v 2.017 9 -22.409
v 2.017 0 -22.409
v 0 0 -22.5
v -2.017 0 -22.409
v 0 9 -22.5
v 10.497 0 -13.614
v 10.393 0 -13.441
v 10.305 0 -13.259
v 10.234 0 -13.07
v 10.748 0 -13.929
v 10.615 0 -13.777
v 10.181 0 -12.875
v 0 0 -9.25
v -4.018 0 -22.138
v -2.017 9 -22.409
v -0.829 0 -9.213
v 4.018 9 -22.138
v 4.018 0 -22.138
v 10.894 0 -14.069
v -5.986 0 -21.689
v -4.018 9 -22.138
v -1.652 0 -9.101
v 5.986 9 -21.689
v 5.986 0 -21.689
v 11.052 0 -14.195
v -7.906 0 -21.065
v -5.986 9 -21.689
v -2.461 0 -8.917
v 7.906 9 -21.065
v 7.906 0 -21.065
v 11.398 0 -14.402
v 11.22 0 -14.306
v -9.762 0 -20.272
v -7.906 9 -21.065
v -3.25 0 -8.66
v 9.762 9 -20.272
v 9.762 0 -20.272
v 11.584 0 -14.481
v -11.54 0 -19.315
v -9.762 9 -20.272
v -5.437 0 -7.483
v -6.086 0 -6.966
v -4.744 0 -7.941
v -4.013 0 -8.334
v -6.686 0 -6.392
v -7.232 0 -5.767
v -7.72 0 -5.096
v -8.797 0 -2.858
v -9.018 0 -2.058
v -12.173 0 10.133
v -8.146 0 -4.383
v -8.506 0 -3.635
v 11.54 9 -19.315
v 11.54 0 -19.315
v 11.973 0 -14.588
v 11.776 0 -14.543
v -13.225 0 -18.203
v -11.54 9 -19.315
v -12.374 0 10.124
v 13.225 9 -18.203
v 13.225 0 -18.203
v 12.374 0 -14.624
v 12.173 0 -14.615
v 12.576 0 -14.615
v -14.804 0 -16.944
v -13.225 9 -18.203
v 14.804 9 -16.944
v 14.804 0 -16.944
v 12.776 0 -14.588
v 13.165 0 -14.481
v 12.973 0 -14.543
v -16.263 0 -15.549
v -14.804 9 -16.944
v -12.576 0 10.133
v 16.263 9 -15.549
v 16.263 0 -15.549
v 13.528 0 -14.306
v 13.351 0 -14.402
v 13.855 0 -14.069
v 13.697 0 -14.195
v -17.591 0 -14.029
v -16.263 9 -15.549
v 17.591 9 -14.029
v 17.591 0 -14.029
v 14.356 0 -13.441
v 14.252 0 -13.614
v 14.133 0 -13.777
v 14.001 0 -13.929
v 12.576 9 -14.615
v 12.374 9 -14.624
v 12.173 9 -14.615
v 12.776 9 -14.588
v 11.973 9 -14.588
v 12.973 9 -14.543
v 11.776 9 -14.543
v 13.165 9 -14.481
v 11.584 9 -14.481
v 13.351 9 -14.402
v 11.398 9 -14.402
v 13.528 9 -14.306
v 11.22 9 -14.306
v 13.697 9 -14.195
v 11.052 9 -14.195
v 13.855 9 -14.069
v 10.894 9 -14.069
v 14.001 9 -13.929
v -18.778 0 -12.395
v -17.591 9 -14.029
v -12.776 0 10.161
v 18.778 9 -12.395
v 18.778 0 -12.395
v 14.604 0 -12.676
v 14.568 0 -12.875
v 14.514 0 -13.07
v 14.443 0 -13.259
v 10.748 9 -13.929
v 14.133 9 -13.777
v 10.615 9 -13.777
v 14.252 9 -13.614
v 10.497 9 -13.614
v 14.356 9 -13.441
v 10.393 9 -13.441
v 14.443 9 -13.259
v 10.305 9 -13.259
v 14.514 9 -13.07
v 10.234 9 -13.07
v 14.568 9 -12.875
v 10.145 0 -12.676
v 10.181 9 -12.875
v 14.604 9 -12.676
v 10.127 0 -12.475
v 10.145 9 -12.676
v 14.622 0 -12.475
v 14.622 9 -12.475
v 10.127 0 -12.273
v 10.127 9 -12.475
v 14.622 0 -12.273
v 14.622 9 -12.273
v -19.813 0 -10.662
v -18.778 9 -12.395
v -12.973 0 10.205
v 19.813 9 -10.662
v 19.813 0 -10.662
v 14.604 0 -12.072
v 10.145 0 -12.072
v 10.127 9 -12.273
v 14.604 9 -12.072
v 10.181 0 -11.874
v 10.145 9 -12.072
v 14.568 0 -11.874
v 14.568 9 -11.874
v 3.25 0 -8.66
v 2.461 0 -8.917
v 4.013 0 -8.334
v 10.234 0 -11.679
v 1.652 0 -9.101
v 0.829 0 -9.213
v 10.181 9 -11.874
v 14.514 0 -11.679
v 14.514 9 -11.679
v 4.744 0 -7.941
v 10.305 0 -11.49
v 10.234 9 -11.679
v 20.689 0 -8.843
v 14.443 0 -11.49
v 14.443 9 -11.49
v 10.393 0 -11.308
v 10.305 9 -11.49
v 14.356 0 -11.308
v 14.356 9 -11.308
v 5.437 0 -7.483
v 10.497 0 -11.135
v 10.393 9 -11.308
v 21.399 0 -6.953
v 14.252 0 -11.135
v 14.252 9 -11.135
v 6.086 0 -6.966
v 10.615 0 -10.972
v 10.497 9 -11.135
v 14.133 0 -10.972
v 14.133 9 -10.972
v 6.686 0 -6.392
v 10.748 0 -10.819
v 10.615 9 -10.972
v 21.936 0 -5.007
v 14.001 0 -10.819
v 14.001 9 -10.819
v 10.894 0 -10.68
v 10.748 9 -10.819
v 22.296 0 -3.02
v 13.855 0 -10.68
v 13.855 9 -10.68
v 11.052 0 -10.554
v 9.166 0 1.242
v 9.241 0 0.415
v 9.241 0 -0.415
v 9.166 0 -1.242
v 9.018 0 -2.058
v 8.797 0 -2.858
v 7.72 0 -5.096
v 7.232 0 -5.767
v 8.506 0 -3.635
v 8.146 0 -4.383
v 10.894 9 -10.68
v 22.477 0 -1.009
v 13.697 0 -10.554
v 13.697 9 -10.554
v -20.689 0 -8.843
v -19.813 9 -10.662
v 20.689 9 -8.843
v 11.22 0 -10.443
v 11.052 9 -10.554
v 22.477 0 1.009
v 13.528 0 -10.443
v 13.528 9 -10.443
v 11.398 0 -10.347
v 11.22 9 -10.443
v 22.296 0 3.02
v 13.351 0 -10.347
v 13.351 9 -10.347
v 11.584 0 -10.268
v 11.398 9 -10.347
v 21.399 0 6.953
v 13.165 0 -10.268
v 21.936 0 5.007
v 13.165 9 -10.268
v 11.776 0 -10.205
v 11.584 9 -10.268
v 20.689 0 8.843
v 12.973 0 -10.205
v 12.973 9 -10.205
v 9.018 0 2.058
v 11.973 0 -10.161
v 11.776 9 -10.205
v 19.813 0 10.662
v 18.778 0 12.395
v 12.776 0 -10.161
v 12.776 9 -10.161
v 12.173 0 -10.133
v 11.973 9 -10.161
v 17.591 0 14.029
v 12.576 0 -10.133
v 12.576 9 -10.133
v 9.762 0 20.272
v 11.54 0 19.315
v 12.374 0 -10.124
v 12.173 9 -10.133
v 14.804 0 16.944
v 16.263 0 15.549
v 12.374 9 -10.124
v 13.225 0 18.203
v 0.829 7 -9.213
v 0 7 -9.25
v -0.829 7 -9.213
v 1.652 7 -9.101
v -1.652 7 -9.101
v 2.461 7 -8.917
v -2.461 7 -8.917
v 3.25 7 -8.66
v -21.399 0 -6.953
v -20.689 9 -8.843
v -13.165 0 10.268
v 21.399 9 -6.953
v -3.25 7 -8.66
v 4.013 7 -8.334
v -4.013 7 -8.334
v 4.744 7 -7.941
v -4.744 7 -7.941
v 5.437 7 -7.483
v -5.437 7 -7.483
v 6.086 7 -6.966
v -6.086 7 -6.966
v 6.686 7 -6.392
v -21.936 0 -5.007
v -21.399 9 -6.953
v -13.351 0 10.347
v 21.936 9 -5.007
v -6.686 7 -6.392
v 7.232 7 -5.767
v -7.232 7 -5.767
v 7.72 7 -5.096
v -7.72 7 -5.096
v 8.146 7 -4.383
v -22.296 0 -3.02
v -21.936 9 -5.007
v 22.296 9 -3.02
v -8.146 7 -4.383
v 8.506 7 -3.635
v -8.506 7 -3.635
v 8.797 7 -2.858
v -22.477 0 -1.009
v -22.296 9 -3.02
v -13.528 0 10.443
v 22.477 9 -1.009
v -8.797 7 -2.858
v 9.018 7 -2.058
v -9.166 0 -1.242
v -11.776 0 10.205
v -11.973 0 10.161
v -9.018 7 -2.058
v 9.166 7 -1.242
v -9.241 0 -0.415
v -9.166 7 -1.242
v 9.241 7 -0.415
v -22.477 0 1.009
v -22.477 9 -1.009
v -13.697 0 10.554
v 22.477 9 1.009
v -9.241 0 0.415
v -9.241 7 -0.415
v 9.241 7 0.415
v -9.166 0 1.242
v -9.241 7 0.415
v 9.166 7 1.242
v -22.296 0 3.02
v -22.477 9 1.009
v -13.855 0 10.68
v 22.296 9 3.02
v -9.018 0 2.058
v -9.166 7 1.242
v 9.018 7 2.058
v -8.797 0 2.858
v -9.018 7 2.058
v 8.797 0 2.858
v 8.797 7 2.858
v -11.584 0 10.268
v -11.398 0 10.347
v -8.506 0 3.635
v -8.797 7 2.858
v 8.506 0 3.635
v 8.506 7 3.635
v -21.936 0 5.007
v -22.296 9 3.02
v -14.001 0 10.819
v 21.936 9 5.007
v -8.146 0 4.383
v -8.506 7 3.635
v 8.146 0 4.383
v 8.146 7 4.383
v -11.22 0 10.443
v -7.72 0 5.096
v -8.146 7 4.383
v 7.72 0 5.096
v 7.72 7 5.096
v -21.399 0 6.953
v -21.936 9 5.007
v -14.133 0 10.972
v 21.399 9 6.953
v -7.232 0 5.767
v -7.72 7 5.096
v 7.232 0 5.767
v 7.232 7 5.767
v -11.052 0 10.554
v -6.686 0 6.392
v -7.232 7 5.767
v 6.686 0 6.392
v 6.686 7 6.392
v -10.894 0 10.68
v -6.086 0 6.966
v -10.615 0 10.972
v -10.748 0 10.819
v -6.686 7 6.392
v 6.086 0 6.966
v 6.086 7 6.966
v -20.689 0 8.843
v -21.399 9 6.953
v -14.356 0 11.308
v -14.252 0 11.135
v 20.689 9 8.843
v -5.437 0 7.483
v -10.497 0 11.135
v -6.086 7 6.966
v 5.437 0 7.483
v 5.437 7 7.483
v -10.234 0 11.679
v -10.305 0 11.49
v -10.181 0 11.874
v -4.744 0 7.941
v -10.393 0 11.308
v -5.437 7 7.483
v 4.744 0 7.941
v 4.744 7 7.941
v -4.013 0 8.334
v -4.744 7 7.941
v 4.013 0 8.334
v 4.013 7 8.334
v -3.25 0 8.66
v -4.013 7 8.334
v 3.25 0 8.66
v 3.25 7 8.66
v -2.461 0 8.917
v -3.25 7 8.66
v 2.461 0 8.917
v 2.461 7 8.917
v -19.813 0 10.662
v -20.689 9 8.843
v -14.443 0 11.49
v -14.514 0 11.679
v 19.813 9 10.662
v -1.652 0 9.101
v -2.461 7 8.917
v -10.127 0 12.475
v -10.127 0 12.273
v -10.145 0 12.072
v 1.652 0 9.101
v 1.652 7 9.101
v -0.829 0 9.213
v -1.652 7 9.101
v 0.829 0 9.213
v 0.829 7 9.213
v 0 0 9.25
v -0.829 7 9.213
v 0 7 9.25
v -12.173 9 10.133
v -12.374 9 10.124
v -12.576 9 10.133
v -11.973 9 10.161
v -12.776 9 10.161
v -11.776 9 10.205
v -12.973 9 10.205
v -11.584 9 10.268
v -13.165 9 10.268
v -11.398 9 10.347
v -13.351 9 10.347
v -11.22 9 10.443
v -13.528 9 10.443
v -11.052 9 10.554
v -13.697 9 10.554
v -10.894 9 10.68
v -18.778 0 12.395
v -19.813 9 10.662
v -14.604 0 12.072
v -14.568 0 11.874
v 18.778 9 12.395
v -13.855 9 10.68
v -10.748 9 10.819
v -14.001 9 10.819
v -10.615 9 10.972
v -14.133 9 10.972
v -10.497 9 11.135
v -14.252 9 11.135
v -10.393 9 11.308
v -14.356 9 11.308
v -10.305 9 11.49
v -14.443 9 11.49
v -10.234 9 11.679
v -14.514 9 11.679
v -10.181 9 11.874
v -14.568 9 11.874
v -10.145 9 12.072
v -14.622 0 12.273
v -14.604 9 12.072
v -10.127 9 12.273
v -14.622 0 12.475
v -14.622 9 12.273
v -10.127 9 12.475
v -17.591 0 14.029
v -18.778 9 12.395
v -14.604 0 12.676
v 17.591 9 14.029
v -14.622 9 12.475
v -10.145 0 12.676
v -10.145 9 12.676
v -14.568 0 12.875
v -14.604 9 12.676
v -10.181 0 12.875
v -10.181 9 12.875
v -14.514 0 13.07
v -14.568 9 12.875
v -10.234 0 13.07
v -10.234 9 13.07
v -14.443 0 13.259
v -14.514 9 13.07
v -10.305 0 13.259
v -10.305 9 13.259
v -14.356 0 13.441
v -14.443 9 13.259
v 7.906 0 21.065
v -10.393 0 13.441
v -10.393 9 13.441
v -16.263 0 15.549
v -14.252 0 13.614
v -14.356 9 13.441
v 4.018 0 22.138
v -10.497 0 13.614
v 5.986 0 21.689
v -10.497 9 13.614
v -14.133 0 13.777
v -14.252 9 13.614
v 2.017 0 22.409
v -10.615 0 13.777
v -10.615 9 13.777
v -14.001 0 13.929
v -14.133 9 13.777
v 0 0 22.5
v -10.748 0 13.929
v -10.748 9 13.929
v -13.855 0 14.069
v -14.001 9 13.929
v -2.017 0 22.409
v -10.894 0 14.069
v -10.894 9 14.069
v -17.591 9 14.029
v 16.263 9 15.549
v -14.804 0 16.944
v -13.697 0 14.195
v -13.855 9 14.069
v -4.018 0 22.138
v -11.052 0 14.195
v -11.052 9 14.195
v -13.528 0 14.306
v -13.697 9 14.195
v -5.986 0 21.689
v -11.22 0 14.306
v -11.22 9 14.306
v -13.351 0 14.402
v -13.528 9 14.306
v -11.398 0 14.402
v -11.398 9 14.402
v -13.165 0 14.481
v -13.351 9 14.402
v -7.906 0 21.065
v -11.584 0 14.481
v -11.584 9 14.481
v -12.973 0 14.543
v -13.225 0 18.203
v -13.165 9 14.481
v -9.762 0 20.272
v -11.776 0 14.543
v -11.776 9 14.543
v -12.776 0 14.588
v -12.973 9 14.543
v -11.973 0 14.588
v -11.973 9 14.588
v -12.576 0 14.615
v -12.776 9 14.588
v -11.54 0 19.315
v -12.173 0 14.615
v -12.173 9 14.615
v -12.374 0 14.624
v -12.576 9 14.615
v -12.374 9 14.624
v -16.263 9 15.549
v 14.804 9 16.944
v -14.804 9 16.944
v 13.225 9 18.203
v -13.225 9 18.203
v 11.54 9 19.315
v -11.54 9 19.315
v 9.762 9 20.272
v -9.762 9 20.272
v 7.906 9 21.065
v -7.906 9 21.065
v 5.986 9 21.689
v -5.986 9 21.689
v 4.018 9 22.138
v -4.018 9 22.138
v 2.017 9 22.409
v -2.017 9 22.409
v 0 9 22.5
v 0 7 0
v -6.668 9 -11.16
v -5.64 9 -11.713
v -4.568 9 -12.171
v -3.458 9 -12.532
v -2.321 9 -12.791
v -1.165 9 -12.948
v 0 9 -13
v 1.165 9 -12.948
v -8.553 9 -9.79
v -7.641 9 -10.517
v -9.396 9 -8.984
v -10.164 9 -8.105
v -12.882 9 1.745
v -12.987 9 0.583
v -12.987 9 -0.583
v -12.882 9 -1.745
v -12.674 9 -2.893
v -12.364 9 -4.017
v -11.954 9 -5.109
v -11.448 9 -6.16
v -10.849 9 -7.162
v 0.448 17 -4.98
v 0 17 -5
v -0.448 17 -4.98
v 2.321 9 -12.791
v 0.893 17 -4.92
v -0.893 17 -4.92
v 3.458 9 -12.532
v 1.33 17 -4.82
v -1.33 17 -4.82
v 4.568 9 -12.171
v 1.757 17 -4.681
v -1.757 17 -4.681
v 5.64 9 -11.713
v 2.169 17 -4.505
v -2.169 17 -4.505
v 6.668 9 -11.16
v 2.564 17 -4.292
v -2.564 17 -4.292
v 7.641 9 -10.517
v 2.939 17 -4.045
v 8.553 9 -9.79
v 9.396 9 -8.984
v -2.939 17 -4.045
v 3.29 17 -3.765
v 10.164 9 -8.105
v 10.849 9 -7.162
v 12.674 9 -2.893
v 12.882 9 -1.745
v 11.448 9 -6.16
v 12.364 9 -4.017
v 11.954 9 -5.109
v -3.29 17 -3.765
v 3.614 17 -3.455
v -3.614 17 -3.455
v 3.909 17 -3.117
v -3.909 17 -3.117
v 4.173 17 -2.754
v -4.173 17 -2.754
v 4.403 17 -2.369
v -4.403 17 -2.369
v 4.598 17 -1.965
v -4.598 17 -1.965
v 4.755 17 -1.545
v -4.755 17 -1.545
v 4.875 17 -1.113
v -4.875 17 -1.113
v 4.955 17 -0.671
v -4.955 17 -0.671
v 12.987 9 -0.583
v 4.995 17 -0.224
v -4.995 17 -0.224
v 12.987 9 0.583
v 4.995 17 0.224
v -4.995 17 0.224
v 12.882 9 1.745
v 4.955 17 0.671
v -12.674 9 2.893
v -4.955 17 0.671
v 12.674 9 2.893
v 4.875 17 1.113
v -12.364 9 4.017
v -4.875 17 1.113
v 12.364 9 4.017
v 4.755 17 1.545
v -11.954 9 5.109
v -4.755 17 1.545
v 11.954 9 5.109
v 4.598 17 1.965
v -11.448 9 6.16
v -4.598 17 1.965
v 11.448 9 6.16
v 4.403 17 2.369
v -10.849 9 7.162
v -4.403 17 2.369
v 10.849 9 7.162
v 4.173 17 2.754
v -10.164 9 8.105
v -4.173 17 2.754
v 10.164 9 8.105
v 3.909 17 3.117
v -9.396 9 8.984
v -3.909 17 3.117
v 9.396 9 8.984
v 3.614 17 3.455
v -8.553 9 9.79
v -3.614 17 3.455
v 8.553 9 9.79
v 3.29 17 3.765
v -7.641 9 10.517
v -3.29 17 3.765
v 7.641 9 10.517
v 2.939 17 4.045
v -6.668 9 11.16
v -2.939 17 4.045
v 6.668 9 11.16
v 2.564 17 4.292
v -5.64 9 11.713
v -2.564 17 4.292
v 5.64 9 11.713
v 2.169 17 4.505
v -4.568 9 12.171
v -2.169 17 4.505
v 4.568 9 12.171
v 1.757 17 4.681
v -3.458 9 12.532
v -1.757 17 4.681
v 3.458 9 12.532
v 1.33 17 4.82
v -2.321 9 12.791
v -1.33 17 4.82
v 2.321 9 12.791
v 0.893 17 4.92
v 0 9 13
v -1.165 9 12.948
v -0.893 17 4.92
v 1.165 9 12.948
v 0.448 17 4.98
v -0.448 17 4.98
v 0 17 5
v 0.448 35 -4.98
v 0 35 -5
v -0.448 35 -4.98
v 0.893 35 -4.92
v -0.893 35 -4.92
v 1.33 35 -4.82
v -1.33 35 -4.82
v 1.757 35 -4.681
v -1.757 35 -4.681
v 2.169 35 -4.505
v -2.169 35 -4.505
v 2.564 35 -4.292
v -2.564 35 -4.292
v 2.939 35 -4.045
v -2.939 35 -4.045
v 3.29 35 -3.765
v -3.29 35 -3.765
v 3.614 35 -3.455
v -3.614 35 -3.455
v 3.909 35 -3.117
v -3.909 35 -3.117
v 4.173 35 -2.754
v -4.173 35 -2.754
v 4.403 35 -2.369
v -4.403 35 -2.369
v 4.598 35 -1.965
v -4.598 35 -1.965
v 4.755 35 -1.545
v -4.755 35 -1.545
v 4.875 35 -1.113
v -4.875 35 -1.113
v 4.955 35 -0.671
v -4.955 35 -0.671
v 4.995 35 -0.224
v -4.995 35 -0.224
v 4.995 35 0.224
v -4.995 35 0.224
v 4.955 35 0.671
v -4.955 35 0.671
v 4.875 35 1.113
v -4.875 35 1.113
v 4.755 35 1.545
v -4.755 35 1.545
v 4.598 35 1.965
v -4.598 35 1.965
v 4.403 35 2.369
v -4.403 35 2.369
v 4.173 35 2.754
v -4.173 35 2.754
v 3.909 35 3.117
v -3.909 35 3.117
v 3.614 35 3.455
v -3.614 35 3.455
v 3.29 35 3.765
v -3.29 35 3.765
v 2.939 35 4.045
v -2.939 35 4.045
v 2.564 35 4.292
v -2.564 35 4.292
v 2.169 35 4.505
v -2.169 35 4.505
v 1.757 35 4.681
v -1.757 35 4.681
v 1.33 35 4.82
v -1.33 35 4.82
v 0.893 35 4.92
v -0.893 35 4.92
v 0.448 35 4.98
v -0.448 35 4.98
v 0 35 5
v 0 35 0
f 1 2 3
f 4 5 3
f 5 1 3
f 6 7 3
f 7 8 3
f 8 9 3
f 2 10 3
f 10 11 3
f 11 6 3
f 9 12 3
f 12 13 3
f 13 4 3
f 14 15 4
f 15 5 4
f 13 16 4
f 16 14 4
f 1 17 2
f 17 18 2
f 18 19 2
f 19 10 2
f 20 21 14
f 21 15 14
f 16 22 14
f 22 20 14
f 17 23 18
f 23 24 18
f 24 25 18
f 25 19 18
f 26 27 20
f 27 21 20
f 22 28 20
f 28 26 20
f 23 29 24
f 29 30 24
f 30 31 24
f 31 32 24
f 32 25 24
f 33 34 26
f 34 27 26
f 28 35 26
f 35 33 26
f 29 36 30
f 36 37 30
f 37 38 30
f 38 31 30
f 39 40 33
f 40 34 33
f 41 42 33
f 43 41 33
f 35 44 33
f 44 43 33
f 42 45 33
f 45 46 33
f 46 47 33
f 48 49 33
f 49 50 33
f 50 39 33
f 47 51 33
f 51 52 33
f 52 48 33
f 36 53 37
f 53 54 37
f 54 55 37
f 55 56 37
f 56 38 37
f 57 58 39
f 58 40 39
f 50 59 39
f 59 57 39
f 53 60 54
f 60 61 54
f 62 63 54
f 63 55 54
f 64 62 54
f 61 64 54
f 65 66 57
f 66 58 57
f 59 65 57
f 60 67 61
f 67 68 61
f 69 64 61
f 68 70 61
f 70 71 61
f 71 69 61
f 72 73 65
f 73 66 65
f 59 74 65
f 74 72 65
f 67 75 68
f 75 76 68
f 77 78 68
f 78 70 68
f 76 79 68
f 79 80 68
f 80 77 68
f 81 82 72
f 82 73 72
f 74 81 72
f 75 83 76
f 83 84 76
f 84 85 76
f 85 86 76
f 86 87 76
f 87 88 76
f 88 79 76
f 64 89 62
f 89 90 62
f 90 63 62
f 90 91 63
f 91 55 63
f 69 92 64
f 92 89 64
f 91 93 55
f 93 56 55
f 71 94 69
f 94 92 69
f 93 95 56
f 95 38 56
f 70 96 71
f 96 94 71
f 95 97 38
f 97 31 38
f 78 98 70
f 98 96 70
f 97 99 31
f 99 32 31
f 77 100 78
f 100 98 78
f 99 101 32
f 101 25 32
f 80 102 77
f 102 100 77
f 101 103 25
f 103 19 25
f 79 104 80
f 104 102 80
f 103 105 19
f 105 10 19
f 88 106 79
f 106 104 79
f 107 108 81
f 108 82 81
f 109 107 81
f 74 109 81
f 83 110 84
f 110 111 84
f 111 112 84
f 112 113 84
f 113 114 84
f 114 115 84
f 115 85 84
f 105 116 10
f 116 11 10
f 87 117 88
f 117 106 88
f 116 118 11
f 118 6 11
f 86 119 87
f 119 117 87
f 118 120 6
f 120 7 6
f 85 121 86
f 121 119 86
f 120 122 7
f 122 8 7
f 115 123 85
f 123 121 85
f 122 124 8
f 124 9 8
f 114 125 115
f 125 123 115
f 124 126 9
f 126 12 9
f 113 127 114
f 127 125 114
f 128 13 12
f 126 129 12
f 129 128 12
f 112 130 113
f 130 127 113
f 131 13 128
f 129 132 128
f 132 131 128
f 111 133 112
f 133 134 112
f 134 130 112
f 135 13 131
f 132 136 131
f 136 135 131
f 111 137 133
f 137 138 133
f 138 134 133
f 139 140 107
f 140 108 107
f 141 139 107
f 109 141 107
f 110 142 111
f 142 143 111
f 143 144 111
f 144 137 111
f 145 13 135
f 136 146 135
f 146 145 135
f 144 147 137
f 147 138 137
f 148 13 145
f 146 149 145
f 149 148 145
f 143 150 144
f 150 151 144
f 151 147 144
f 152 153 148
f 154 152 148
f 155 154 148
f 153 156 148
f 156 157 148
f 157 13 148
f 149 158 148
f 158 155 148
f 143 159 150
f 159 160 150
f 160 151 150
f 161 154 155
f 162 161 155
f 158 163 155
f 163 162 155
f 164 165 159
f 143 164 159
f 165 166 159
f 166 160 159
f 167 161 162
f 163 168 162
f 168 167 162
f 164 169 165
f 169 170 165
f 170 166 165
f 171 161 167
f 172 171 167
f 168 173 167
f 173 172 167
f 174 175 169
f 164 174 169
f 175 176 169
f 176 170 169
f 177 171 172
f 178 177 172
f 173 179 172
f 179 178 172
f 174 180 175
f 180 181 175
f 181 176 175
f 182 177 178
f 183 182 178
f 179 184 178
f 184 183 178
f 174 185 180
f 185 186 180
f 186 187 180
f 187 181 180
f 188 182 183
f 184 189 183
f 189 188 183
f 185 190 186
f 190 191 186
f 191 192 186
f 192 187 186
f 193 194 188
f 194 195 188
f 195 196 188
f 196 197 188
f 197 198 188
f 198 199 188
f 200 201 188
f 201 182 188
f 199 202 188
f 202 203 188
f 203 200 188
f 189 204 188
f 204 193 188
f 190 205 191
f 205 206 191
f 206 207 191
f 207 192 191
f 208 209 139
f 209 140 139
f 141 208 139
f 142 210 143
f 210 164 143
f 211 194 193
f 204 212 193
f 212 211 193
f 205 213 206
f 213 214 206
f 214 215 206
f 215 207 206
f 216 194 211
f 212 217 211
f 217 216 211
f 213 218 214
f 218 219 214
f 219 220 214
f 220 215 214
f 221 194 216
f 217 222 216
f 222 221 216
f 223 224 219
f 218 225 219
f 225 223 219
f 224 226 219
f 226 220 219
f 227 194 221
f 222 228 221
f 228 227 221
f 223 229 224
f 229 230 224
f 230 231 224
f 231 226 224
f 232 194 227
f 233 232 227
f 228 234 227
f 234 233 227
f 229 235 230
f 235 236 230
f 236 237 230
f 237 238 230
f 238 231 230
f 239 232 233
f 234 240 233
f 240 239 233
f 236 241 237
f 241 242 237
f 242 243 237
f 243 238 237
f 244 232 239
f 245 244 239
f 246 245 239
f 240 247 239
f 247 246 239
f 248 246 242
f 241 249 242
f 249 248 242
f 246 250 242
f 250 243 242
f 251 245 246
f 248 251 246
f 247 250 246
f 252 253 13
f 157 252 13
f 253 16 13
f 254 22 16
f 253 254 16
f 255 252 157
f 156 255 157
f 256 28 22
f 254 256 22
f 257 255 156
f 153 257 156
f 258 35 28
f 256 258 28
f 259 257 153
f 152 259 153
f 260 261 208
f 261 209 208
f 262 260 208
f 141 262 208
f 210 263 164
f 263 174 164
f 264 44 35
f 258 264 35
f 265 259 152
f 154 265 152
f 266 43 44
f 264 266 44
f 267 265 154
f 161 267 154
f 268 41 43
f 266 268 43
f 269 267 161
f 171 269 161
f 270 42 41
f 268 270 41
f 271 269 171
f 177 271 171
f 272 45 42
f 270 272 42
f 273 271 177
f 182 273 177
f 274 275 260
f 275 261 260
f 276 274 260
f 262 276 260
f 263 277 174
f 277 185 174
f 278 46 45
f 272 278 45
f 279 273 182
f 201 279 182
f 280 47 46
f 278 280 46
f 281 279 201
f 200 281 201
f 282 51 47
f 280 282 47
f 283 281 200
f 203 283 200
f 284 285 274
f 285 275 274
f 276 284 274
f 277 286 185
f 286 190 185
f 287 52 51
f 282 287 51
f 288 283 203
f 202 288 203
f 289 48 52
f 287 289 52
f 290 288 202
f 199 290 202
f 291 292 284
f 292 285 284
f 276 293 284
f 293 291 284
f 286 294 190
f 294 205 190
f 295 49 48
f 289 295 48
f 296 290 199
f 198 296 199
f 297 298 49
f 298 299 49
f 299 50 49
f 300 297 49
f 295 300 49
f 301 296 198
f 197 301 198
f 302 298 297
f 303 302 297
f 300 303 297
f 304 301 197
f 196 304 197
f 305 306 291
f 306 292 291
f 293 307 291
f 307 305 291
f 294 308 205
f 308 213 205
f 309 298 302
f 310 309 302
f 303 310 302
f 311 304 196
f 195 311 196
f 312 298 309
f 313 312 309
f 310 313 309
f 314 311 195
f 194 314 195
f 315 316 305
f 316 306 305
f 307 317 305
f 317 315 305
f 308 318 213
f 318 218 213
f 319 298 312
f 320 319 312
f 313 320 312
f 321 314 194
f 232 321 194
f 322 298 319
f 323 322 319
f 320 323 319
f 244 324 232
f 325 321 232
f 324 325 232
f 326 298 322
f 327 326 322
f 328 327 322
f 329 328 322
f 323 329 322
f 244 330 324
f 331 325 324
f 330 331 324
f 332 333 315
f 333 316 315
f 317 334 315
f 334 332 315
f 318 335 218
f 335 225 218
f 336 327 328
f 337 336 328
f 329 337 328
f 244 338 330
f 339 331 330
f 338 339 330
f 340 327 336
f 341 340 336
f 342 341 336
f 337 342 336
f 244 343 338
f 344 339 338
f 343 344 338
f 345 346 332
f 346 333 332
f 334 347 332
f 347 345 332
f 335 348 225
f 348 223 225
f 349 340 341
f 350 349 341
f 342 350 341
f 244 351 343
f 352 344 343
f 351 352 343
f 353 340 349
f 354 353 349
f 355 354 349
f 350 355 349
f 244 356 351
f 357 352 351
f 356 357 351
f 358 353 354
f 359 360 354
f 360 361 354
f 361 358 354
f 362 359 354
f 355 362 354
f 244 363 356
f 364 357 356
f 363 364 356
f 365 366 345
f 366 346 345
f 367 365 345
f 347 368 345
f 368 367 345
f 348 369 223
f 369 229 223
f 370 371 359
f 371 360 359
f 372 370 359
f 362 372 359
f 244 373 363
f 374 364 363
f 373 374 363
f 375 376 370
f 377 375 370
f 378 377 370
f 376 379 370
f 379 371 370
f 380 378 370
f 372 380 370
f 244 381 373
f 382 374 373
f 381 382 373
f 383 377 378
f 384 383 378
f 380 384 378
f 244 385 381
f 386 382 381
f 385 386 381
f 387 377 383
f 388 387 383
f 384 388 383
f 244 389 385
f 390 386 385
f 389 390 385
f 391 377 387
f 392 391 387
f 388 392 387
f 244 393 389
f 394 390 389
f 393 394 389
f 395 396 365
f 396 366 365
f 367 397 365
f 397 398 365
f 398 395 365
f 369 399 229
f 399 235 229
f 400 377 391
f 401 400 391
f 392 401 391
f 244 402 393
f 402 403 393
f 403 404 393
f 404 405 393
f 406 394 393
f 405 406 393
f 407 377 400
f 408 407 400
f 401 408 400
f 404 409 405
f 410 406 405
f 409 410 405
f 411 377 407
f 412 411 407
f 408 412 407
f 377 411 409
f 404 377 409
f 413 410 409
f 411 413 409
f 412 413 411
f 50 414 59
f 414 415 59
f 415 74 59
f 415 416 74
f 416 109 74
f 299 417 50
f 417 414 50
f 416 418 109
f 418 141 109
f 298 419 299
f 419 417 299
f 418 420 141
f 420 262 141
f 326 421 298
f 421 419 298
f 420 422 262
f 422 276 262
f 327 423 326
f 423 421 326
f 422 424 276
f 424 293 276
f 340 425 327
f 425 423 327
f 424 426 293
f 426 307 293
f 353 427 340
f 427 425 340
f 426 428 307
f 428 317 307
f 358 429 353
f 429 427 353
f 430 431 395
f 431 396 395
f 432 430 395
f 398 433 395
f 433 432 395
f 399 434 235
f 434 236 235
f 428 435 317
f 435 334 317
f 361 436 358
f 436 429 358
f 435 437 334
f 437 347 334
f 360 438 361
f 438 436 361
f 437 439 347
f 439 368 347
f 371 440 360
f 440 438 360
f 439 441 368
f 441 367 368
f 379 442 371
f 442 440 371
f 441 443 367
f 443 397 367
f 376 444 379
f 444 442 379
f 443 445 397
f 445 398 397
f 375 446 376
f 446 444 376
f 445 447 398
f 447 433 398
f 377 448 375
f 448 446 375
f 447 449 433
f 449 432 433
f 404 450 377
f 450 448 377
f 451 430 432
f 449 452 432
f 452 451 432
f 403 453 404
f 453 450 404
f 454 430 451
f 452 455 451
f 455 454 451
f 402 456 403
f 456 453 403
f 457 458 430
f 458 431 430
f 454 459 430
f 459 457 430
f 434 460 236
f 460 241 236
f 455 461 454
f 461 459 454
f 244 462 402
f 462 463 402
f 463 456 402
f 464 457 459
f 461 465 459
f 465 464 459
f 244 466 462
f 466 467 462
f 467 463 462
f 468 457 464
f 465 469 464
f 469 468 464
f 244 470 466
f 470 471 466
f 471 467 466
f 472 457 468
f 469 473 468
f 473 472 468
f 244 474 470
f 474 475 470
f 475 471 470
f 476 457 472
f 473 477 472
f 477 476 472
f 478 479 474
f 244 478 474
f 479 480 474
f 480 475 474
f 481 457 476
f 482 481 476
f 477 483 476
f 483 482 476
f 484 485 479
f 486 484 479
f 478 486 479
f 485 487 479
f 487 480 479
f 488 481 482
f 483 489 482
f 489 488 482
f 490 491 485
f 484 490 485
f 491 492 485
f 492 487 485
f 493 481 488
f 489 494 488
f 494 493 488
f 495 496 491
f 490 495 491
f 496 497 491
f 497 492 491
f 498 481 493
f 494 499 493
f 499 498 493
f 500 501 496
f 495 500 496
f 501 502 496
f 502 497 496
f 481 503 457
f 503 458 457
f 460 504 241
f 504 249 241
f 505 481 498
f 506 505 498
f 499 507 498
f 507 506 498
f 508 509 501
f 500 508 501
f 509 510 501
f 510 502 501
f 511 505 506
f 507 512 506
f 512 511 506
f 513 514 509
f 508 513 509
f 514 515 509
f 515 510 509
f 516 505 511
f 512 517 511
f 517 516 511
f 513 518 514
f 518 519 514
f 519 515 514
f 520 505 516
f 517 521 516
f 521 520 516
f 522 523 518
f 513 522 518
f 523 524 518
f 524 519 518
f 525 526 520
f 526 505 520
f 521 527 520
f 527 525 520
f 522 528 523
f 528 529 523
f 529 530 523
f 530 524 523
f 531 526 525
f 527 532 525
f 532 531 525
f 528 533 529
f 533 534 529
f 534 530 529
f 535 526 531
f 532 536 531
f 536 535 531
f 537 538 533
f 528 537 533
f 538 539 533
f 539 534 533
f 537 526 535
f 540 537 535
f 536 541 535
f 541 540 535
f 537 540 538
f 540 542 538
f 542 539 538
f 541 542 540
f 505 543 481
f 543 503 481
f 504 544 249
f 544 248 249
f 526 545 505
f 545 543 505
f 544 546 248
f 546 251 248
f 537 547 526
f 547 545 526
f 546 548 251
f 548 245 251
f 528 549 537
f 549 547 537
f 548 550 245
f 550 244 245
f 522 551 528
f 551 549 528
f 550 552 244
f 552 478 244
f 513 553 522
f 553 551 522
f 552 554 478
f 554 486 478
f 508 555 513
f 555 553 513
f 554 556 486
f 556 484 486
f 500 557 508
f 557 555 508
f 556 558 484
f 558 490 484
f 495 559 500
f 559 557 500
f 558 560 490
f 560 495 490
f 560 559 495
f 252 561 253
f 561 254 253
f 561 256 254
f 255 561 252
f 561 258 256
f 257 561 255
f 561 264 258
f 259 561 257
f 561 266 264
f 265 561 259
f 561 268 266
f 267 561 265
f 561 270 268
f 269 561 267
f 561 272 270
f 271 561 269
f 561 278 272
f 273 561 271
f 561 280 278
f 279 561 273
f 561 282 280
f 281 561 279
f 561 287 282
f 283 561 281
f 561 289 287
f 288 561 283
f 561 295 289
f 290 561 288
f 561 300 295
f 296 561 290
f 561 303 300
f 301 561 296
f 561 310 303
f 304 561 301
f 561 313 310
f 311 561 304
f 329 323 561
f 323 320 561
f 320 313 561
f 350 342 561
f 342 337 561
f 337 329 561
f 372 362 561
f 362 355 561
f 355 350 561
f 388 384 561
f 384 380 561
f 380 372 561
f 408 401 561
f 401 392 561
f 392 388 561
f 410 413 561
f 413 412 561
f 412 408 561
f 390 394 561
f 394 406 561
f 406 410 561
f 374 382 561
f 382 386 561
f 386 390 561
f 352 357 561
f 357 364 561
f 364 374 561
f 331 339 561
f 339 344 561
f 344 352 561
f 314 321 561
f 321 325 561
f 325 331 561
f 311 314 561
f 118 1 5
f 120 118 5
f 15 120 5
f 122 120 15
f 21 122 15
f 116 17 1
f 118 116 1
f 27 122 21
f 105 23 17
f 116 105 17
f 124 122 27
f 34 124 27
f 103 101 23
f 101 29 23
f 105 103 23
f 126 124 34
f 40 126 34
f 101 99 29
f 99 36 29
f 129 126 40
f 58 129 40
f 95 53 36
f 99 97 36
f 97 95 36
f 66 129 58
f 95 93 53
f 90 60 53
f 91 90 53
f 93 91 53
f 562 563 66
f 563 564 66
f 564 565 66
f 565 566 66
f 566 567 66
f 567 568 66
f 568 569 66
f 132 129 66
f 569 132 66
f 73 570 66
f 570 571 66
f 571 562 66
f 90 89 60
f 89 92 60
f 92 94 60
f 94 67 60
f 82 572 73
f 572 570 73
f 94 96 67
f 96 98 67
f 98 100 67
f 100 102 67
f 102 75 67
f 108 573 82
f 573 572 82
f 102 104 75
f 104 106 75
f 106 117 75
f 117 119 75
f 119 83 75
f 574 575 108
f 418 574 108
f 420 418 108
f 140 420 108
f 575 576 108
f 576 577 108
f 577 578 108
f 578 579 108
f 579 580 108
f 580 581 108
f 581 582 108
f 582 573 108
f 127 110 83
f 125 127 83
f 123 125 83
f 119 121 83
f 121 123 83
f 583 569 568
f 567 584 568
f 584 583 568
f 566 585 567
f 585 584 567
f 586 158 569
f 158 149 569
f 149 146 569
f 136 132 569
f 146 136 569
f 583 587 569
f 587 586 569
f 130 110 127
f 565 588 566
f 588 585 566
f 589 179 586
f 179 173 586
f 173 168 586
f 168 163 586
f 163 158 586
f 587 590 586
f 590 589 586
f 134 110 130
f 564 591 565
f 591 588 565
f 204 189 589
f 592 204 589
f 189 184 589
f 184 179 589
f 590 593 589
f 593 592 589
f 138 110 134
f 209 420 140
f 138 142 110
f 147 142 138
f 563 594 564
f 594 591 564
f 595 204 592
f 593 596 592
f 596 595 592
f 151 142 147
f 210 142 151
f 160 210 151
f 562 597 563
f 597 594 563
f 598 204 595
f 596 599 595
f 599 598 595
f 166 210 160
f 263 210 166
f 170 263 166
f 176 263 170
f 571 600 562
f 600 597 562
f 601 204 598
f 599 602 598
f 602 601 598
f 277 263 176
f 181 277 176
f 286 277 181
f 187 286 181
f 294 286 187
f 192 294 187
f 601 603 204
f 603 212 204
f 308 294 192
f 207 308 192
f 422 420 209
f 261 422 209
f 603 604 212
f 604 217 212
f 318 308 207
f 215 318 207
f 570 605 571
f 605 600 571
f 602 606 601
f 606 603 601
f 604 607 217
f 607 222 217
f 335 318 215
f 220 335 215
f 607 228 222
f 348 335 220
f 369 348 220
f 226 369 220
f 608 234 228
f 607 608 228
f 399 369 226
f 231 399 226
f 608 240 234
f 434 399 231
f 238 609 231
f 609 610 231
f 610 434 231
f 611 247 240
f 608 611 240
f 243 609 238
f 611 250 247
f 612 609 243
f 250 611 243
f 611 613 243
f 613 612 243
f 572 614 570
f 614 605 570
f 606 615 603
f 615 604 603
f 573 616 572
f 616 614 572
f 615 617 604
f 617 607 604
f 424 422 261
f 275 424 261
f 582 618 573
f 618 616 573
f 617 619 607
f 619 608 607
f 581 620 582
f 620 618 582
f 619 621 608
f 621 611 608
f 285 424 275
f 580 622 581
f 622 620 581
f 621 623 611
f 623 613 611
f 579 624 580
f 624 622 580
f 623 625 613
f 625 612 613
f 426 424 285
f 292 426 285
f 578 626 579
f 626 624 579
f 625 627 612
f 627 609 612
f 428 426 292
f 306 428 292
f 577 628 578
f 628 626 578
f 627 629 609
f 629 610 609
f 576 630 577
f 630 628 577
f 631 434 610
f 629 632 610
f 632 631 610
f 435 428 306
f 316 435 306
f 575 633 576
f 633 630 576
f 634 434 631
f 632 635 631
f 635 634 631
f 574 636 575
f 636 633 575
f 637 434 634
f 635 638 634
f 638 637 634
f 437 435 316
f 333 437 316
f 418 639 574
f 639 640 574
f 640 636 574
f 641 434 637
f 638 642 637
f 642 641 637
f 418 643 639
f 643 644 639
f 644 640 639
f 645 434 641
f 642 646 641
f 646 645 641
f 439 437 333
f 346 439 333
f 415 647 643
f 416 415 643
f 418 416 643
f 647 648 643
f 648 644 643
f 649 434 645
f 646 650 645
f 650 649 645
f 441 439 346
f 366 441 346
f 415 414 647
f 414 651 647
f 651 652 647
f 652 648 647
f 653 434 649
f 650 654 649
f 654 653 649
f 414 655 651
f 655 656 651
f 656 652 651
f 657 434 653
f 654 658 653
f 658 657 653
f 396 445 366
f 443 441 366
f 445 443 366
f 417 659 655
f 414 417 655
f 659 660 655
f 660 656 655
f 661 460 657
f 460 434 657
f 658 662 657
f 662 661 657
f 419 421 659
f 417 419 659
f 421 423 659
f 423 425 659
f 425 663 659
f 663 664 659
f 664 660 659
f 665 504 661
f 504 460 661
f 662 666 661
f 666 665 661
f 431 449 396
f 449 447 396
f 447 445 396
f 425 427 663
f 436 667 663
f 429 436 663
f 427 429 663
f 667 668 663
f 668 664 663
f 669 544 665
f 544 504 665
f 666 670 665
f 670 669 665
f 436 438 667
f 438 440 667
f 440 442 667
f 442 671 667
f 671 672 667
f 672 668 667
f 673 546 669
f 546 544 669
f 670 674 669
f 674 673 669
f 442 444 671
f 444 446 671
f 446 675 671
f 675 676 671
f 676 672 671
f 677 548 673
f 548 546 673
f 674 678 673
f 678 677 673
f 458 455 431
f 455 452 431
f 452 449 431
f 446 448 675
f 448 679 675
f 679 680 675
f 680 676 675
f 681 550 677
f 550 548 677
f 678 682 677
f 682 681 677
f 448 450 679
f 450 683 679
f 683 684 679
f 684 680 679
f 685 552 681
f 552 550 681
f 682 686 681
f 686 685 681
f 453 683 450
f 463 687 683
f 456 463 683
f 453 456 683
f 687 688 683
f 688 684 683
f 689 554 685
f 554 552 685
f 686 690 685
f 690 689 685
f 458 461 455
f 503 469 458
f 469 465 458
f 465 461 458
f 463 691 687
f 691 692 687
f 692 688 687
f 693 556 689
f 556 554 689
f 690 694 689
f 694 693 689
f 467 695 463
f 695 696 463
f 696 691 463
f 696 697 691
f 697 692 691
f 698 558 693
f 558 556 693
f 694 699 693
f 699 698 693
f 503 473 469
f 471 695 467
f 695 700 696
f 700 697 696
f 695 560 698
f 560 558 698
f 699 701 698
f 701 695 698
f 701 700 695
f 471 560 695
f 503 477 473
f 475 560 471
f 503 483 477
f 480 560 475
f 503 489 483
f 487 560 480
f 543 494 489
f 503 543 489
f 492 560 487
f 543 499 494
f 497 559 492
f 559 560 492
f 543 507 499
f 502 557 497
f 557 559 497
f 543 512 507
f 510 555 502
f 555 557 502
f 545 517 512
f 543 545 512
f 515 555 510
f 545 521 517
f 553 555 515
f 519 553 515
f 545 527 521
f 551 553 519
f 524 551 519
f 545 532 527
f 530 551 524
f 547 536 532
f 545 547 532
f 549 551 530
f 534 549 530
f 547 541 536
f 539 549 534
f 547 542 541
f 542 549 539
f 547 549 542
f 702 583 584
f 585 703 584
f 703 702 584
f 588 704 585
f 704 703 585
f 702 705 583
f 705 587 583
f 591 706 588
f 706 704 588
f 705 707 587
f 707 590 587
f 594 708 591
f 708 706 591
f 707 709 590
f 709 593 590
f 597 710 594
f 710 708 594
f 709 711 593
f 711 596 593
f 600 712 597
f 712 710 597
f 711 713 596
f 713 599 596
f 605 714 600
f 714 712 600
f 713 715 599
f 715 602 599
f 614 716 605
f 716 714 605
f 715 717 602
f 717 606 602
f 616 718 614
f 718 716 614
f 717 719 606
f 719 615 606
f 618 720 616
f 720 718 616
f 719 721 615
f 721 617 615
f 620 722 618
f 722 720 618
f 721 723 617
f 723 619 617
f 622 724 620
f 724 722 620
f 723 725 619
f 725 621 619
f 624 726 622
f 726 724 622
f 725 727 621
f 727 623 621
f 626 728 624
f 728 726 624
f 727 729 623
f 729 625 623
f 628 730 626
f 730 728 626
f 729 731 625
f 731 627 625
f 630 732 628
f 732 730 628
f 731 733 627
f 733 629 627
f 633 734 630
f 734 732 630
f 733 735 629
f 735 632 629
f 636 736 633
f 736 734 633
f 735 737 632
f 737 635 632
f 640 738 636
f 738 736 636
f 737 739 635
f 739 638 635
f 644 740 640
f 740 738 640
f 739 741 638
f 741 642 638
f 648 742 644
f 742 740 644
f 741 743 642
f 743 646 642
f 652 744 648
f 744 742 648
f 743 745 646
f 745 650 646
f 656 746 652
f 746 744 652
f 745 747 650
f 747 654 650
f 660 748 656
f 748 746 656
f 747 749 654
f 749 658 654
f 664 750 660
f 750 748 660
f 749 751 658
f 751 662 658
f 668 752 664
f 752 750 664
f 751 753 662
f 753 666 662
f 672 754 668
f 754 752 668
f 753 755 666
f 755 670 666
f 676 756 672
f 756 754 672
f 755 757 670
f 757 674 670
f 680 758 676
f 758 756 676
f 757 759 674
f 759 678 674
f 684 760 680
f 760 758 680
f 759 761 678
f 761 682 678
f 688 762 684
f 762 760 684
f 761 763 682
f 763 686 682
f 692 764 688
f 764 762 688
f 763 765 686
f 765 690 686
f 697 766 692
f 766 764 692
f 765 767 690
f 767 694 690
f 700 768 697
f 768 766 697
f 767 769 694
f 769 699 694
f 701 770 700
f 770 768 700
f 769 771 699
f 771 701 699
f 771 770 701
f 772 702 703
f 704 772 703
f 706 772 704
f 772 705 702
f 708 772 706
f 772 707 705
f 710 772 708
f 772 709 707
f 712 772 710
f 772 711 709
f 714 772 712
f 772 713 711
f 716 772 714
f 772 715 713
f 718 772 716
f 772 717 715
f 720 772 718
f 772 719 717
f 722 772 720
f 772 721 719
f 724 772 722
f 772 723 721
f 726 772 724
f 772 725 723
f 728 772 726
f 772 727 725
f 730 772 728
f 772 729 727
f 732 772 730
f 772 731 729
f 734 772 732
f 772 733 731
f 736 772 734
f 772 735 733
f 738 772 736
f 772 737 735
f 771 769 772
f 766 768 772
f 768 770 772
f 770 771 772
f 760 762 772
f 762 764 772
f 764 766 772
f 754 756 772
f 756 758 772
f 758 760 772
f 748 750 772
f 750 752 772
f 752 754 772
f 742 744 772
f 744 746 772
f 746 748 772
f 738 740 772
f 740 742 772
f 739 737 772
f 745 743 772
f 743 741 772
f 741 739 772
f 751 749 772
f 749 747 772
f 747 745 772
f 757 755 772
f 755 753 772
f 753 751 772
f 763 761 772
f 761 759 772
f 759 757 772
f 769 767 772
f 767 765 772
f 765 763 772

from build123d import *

# Parameters (mm, degrees)
SKETCH1_R           = 22.5
BOSS_EXTRUDE1_DEPTH = 9
SKETCH2_R           = 2.25
CUT_EXTRUDE1_DEPTH  = 10
CIRPATTERN1_COUNT   = 2
SKETCH3_R           = 5
BOSS_EXTRUDE2_DEPTH = 26
CHAMFER1_SIZE       = 8
SKETCH6_R           = 9.25
CUT_EXTRUDE4_DEPTH  = 7


with BuildPart() as part:
    # Sketch1 → Boss-Extrude1 (new body)
    with BuildSketch(Plane(origin=(0, 0, 0), x_dir=(1, 0, 0), z_dir=(0, 1, 0))):
        Circle(SKETCH1_R)
    extrude(amount=BOSS_EXTRUDE1_DEPTH)

    # Sketch2 → Cut-Extrude1 (cut, through all)
    with BuildSketch(Plane(origin=(0, 9, 0), x_dir=(1, 0, 0), z_dir=(0, 1, 0))):
        with Locations((12.374368671, 12.374368671)):
            Circle(SKETCH2_R)
    cut_extrude1 = extrude(amount=-CUT_EXTRUDE1_DEPTH, mode=Mode.SUBTRACT)

    # CirPattern1: Cut-Extrude1 ×2 about axis
    cirpattern1_axis = Axis((0, 0, 0), (0, 1, 0))
    for i in range(1, CIRPATTERN1_COUNT):
        add(cut_extrude1.rotate(cirpattern1_axis, i * 360 / CIRPATTERN1_COUNT), mode=Mode.SUBTRACT)

    # Sketch3 → Boss-Extrude2 (add)
    with BuildSketch(Plane(origin=(0, 9, 0), x_dir=(1, 0, 0), z_dir=(0, 1, 0))):
        Circle(SKETCH3_R)
    extrude(amount=BOSS_EXTRUDE2_DEPTH)

    # Chamfer1
    chamfer1_edges = [part.edges().sort_by_distance(p)[0] for p in [
        (-5, 9, 0),
    ]]
    chamfer(chamfer1_edges, length=CHAMFER1_SIZE)

    # Sketch6 → Cut-Extrude4 (cut)
    with BuildSketch(Plane.XZ):
        Circle(SKETCH6_R)
    extrude(amount=-CUT_EXTRUDE4_DEPTH, mode=Mode.SUBTRACT)


solid = part.part
